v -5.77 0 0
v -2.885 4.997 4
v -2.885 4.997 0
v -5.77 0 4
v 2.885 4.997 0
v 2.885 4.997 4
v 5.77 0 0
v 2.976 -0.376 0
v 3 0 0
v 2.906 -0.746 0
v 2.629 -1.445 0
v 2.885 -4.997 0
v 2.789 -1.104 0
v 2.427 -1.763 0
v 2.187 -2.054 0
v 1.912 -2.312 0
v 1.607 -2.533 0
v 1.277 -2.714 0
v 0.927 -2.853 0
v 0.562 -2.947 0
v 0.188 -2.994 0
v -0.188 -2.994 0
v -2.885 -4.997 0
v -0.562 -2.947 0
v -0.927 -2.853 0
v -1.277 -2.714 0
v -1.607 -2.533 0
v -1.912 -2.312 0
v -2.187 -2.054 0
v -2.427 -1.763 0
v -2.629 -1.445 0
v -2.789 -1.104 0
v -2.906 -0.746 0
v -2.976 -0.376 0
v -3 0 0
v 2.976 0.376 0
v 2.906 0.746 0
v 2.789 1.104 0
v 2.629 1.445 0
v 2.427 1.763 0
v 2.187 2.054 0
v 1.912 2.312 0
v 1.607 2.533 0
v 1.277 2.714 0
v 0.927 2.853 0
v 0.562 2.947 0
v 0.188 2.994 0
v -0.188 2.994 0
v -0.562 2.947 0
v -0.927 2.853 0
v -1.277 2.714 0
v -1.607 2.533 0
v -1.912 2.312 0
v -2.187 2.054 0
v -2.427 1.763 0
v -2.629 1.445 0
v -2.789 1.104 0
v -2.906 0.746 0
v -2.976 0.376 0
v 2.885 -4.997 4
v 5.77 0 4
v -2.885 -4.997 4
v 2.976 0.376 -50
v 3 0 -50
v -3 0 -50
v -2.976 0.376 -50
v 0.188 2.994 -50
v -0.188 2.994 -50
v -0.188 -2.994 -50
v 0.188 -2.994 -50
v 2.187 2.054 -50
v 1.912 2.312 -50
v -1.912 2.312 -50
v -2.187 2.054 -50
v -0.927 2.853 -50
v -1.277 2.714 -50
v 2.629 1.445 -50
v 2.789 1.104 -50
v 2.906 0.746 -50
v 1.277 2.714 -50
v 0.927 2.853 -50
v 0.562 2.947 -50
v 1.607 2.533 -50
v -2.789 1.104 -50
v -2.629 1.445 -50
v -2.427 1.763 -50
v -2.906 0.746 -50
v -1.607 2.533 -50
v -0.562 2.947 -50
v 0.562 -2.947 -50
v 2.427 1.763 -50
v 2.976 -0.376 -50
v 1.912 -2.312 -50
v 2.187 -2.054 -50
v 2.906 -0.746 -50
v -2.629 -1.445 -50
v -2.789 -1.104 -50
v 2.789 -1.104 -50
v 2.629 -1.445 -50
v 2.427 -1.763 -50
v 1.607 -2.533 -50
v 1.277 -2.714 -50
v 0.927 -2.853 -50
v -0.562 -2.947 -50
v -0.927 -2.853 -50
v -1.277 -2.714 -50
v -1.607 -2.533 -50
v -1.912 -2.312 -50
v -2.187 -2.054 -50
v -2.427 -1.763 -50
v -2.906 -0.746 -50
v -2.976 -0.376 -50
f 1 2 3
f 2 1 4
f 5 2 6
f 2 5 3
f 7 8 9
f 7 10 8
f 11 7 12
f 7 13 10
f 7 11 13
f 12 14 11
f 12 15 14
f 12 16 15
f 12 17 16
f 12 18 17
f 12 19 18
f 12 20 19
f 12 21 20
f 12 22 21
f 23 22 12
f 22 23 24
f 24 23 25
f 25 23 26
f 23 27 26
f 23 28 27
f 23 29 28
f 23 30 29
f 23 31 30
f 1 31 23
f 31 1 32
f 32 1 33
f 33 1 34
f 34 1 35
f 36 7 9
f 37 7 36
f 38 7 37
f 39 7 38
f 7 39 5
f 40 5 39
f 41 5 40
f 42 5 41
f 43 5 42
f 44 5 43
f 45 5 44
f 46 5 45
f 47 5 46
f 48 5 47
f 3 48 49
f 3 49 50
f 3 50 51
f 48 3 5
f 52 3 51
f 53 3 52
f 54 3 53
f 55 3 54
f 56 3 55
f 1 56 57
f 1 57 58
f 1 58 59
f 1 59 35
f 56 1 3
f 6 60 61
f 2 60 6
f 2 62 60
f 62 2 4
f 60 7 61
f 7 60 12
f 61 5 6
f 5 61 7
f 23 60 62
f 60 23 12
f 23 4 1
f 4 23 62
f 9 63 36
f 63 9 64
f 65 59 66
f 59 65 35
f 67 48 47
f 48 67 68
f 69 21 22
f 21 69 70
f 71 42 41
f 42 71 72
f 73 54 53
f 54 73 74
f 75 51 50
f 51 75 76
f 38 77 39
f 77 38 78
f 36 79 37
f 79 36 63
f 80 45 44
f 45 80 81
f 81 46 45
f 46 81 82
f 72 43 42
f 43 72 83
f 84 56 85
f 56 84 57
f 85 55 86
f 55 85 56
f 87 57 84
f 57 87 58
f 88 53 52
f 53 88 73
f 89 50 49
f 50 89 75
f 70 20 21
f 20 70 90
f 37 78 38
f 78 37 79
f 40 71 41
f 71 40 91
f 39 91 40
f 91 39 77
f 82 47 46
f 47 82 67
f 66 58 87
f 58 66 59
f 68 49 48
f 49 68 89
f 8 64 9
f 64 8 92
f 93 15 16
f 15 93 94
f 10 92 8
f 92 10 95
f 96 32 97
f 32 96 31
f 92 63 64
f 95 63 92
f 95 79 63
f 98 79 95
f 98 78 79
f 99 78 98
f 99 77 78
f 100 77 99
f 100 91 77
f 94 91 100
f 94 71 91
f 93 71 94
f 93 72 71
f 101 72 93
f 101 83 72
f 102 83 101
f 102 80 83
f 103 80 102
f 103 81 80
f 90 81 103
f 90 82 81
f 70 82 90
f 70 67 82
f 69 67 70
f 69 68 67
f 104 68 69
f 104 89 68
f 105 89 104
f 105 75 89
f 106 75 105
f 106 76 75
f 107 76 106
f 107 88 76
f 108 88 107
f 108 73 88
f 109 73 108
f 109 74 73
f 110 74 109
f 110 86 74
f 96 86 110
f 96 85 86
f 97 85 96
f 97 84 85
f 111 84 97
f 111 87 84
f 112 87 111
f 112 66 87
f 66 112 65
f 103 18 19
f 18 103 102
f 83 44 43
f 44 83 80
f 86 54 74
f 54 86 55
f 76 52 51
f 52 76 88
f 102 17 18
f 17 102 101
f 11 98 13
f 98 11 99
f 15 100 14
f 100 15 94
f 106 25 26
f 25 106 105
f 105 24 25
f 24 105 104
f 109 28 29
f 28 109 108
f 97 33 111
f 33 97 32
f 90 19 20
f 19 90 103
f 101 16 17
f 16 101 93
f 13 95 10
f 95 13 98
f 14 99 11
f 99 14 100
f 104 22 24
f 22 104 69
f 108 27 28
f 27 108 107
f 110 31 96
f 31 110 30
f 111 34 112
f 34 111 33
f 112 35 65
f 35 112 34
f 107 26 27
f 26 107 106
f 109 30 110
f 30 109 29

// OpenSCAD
$fn = 50;


difference() {
	union() {
		translate(v = [0, 0, 0]) {
			rotate(a = [0, 0, 0]) {
				translate(v = [0, 0, 0]) {
					rotate(a = [0, 0, 0]) {
						linear_extrude(height = 4) {
							polygon(points = [[5.7700000000, 0.0000000000], [2.8850000000, 4.9969665798], [-2.8850000000, 4.9969665798], [-5.7700000000, 0.0000000000], [-2.8850000000, -4.9969665798], [2.8850000000, -4.9969665798]]);
						}
					}
				}
			}
		}
		translate(v = [0, 0, -50]) {
			rotate(a = [0, 0, 0]) {
				cylinder(h = 50, r = 3.0000000000);
			}
		}
	}
	union();
}
